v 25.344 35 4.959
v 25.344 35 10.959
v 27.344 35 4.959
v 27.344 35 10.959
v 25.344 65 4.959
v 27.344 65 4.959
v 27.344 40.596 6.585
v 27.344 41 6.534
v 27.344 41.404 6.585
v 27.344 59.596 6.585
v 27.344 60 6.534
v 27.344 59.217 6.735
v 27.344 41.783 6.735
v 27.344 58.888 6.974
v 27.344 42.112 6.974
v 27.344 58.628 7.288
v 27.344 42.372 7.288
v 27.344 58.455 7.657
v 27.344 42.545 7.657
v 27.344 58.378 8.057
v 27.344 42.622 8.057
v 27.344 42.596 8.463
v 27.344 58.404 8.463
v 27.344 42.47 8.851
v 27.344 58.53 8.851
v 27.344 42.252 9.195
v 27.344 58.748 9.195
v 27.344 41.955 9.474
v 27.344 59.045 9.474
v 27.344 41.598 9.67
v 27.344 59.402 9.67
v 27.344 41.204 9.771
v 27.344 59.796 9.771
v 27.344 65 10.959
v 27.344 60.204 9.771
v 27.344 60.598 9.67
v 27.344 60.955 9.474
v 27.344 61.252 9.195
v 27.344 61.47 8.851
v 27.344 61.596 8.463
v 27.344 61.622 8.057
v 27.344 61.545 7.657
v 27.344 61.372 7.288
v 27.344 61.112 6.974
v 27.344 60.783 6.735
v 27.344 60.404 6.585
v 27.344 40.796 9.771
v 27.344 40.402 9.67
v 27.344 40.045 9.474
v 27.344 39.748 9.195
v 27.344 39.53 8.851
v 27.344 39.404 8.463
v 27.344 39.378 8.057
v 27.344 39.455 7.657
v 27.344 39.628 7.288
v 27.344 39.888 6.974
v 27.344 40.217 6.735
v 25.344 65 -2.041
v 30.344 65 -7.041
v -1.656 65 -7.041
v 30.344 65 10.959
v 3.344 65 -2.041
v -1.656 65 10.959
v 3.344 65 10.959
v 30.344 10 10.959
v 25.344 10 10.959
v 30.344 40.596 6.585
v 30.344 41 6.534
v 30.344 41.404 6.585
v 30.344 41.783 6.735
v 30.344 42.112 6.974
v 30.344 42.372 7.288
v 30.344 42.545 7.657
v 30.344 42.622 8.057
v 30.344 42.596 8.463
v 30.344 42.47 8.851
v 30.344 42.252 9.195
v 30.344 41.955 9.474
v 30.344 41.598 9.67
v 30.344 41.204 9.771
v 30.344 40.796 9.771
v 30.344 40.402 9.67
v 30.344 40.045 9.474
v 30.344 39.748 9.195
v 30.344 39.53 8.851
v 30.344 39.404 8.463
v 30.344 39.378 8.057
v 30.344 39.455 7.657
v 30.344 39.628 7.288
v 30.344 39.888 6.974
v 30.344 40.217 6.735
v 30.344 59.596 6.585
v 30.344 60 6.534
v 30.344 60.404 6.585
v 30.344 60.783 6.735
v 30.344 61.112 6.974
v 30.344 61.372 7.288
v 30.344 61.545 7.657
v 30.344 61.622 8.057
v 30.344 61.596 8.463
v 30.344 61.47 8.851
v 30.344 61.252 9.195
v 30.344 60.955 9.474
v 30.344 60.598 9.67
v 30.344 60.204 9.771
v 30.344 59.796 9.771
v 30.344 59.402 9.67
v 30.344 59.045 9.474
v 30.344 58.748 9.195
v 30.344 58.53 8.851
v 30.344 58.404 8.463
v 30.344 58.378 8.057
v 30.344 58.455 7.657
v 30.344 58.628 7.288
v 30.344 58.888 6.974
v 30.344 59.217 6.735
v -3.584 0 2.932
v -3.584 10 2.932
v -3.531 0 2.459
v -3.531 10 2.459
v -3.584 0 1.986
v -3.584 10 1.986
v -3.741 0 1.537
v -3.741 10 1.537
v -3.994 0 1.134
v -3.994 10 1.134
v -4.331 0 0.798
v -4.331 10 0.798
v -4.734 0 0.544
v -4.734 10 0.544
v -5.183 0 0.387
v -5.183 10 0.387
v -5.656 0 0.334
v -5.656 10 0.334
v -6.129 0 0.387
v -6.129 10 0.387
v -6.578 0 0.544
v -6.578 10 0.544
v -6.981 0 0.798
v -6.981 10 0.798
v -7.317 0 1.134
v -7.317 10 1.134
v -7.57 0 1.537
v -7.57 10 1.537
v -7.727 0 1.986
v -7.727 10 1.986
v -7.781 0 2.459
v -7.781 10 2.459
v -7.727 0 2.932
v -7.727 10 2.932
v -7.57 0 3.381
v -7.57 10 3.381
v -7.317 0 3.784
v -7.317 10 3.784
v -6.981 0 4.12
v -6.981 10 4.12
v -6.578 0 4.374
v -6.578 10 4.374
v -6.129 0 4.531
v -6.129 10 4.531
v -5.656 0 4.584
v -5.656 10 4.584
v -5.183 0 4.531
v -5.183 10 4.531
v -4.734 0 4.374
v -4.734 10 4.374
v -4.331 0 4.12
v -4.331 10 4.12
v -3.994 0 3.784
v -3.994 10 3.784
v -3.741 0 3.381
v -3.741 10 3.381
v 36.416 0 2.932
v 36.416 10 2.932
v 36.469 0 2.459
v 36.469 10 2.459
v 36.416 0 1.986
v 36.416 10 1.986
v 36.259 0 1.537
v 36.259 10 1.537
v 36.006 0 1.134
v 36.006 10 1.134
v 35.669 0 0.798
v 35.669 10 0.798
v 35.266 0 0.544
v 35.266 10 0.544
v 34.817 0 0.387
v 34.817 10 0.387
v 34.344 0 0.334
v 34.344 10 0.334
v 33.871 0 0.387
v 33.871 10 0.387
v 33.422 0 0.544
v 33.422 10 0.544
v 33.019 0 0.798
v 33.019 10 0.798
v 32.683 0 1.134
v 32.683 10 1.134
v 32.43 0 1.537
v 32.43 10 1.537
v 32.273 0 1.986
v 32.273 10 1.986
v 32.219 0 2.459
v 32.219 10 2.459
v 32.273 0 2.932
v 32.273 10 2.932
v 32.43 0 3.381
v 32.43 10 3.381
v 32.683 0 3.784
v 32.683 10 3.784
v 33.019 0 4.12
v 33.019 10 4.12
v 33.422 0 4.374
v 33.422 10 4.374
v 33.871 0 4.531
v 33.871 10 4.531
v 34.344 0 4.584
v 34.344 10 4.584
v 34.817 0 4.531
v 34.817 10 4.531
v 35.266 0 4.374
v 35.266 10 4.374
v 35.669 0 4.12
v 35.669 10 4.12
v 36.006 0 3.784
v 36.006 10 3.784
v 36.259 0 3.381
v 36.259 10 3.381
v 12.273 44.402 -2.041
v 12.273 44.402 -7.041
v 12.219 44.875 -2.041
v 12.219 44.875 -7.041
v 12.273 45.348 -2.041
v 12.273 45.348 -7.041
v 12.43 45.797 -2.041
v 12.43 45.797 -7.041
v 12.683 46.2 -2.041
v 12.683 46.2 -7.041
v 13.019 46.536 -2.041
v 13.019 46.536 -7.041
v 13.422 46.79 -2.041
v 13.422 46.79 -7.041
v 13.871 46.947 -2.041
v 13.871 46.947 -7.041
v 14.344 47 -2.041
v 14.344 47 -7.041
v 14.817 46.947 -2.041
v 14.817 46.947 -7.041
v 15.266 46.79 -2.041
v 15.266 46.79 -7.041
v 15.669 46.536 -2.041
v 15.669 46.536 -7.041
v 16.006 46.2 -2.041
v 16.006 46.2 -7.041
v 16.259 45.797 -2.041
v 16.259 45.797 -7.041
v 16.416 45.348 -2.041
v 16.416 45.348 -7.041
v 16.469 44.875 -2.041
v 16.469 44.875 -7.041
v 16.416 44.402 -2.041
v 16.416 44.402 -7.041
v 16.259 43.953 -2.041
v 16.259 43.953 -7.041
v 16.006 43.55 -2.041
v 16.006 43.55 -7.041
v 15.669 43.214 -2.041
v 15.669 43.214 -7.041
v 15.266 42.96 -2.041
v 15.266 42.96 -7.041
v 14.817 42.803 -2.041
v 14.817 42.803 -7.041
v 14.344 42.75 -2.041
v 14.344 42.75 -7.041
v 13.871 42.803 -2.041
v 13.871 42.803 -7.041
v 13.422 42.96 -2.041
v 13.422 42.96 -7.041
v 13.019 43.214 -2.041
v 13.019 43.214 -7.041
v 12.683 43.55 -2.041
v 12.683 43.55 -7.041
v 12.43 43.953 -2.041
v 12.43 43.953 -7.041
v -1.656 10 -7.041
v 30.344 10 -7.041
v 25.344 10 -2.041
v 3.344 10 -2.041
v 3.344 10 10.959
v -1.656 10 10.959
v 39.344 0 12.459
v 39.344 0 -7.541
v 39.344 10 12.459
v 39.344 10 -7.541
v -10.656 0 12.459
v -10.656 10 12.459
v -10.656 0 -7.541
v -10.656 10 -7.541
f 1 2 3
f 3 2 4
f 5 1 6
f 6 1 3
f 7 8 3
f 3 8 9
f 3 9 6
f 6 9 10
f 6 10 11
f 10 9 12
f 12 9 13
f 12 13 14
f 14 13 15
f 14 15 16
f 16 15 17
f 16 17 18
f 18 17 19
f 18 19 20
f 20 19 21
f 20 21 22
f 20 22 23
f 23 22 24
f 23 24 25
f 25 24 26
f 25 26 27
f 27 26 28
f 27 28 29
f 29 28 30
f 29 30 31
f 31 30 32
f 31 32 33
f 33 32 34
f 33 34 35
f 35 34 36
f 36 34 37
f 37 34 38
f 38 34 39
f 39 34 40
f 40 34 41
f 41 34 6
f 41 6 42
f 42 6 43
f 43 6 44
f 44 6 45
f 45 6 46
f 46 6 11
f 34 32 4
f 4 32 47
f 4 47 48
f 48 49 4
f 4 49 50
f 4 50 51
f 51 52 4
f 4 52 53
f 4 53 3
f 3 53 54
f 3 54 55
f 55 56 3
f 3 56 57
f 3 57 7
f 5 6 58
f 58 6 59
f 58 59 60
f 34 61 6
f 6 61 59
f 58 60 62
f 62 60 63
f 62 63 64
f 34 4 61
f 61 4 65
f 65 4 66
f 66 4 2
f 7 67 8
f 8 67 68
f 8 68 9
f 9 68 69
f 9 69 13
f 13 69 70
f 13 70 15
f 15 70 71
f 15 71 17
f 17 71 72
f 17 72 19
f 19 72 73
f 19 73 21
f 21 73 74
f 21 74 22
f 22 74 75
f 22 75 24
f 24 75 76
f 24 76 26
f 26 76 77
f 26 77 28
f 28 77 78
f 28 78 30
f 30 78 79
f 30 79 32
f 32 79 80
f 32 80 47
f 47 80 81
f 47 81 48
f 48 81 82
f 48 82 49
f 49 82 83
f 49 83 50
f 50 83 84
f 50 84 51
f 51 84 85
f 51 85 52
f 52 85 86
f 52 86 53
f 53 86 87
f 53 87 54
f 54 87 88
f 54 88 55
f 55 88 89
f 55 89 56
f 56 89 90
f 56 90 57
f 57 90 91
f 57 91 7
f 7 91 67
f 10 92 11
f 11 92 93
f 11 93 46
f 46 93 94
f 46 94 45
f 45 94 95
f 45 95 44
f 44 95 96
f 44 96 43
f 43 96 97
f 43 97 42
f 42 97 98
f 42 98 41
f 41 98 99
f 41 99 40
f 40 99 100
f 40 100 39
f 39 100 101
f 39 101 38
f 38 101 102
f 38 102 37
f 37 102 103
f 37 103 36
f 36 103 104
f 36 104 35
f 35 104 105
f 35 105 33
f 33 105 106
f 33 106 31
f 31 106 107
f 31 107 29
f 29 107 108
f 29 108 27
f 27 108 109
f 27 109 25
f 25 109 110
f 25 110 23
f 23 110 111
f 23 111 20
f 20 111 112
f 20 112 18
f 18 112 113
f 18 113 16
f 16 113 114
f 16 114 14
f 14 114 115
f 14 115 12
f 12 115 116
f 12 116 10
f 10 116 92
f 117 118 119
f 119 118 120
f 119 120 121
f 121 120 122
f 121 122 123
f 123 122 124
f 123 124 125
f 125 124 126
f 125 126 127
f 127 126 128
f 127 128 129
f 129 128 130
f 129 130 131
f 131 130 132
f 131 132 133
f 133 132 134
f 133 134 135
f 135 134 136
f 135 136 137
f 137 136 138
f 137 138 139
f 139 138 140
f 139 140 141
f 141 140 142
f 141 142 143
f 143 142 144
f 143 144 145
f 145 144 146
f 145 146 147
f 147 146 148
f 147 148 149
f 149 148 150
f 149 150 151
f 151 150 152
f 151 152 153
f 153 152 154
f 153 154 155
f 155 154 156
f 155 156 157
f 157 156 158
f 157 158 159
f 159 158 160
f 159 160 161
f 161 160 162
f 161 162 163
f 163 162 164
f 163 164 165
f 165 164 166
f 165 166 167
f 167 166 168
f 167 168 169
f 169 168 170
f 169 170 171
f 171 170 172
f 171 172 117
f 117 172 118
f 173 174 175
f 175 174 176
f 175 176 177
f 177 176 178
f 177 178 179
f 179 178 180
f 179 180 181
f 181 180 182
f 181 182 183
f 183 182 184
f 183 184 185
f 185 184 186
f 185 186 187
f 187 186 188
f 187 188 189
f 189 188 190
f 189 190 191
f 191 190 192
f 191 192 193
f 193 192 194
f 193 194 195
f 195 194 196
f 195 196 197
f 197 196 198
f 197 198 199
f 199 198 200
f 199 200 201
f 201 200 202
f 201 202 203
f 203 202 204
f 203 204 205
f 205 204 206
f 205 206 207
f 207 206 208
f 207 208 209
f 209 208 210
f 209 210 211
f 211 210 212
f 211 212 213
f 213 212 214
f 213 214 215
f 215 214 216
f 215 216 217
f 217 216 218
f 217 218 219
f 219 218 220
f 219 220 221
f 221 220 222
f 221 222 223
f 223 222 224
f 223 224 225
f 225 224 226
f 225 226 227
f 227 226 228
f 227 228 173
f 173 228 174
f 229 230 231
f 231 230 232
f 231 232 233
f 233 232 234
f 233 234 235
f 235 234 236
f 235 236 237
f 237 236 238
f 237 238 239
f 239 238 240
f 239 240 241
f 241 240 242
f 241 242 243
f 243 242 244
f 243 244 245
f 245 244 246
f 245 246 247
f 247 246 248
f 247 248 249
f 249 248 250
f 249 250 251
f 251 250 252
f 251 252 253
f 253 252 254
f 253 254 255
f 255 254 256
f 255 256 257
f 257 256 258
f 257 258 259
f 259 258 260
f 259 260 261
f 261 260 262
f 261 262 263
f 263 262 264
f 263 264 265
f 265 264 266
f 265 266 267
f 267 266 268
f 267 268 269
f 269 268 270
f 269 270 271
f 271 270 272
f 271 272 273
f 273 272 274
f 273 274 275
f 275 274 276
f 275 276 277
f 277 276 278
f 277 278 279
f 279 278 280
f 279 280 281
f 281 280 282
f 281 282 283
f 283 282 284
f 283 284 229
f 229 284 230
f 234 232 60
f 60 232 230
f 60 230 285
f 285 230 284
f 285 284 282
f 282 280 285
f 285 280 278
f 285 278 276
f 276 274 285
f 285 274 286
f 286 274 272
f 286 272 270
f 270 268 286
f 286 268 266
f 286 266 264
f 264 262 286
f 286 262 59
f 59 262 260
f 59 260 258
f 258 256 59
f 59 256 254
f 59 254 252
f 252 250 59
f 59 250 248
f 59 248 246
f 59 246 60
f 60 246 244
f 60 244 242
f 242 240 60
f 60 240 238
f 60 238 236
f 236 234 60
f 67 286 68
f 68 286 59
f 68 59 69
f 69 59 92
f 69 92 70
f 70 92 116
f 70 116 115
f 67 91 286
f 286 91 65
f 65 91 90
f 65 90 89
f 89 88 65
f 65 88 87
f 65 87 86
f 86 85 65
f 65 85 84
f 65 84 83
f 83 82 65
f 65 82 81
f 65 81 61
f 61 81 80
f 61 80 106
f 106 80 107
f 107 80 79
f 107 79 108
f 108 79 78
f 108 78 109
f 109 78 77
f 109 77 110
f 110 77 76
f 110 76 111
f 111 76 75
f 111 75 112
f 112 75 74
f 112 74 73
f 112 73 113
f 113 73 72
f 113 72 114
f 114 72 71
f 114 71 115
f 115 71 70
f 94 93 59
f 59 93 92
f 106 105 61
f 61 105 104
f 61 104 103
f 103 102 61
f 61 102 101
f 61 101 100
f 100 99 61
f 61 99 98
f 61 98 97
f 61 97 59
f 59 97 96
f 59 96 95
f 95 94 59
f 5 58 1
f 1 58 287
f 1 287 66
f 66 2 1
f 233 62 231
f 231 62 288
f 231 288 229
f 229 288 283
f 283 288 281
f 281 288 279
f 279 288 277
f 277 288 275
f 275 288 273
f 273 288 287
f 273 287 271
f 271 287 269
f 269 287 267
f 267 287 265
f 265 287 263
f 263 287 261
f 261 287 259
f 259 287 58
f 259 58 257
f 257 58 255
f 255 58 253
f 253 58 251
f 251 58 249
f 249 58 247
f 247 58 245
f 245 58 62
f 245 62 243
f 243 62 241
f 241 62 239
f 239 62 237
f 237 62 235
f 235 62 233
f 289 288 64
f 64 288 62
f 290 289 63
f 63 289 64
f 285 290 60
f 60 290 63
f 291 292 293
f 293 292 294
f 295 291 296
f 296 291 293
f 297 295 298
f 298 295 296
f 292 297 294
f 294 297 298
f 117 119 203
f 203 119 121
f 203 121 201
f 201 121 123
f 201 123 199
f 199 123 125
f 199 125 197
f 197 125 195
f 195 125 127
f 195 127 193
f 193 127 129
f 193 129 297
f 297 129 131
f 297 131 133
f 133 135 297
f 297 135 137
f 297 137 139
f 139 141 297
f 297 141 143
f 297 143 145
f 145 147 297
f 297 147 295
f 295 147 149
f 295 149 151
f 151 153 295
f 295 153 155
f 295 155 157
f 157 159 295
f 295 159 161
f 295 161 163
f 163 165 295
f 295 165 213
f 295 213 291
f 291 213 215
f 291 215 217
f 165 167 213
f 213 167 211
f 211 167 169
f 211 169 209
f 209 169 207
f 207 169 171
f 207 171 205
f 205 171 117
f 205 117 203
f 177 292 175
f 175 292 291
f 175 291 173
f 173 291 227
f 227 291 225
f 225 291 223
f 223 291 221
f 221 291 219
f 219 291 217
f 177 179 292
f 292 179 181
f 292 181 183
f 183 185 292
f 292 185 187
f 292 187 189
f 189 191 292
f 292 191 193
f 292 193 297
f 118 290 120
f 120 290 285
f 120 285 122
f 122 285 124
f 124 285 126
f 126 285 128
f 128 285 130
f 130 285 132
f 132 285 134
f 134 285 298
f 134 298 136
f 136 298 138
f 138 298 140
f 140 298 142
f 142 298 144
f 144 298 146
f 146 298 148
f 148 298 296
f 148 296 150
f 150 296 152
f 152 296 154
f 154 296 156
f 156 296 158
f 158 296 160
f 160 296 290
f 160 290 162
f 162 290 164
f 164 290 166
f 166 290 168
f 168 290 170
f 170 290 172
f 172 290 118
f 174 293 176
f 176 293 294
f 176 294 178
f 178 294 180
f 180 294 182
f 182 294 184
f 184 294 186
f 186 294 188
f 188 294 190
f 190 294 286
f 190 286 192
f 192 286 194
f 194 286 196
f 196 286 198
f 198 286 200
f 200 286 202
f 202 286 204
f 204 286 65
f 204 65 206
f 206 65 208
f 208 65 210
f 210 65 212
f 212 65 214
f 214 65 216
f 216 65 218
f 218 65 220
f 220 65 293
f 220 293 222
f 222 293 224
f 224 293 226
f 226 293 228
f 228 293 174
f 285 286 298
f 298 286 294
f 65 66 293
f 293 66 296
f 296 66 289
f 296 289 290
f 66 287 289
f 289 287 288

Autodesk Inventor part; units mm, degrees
ref_plane "YZ Plane" through (0, 0, 0) normal (1, 0, 0) x (0, 1, 0)
ref_plane "XZ Plane" through (0, 0, 0) normal (0, 1, 0) x (-1, 0, 0)
ref_plane "XY Plane" through (0, 0, 0) normal (0, 0, 1) x (1, 0, 0)
sketch "Sketch2" plane through (0, 0, 0) normal (0, 1, 0) x (-1, 0, 0)
  line L0 (10.6557, -7.541) -> (-39.3443, -7.541)
  line L1 (-39.3443, -7.541) -> (-39.3443, 12.459)
  line L2 (-39.3443, 12.459) -> (10.6557, 12.459)
  line L3 (10.6557, 12.459) -> (10.6557, -7.541)
  point P0 (0, 0)
  dimension "d10" = 20
  dimension "d11" = 50
extrude "Extrusion3" add sketch "Sketch2" along normal blind 10
sketch "Sketch3" plane through (0, 10, 0) normal (0, 1, 0) x (1, 0, 0)
  line L0 (39.3443, 7.541) -> (-10.6557, 7.541) projected
  line L1 (-10.6557, 7.541) -> (-10.6557, -12.459) projected
  line L2 (-10.6557, -12.459) -> (39.3443, -12.459) projected
  line L3 (39.3443, -12.459) -> (39.3443, 7.541) projected
  line L4 (-1.6557, -10.959) -> (-1.6557, 7.041)
  line L5 (-1.6557, 7.041) -> (30.3443, 7.041)
  line L6 (30.3443, 7.041) -> (30.3443, -10.959)
  line L7 (30.3443, -10.959) -> (25.3443, -10.959)
  line L8 (25.3443, -10.959) -> (25.3443, 2.041)
  line L9 (25.3443, 2.041) -> (3.3443, 2.041)
  line L10 (3.3443, 2.041) -> (3.3443, -10.959)
  line L11 (3.3443, -10.959) -> (-1.6557, -10.959)
  line L12 (-1.6557, 7.041) -> (-10.6557, 7.041) construction
  line L13 (30.3443, 7.041) -> (39.3443, 7.041) construction
  line L14 (-1.6557, 7.041) -> (-1.6557, 7.541) construction
  point P0 (0, 0)
  dimension "d14" = 22
  dimension "d15" = 5
  dimension "d16" = 5
  dimension "d17" = 0.5
  dimension "d18" = 13
extrude "Extrusion4" add sketch "Sketch3" along normal blind 55 contours L4 L5 L6 L7 L8 L9 L10 L11
sketch "Sketch4" plane through (30.3443, 10, -7.041) normal (0, 0, -1) x (-1, 0, 0)
  circle A0 centre (16, 34.875) radius 2.125
  line L0 (16, 34.875) -> (0, 34.875) construction
  line L1 (0, 0) -> (0, 55) projected
  line L2 (16, 34.875) -> (32, 34.875) construction
  line L3 (32, 0) -> (32, 55) projected
  line L4 (0, 55) -> (32, 55) projected
  line L5 (-9, 0) -> (41, 0) projected
  point P0 (30.3443, -10)
  point P1 (28, 0)
  dimension "d21" = 4.25
  dimension "d32" = 34.875
extrude "Extrusion5" cut sketch "Sketch4" against normal up to next contours A0
sketch "Sketch5" plane through (0, 10, 0) normal (0, 1, 0) x (1, 0, 0)
  circle A0 centre (-5.6557, -2.459) radius 2.125
  circle A1 centre (34.3443, -2.459) radius 2.125
  line L0 (-5.6557, -2.459) -> (-10.6557, -2.459) construction
  line L1 (34.3443, -2.459) -> (39.3443, -2.459) construction
  line L2 (39.3443, -12.459) -> (39.3443, 7.541) projected
  line L3 (39.3443, 7.541) -> (-10.6557, 7.541) projected
  line L4 (-10.6557, 7.541) -> (-10.6557, -12.459) projected
  point P0 (0, 0)
  dimension "d26" = 4.25
  dimension "d27" = 10
  dimension "d28" = 5
extrude "Extrusion6" cut sketch "Sketch5" against normal up to next
sketch "Sketch6" plane through (30.3443, 10, 10.959) normal (1, 0, 0) x (0, 0, -1)
  circle A0 centre (2.8, 31) radius 1.625
  circle A1 centre (2.8, 50) radius 1.625
  line L0 (18, 0) -> (0, 0) projected
  line L1 (0, 0) -> (0, 55) projected
  line L2 (2.8, 50) -> (2.8, 31) construction
  point P0 (10.959, -10)
  dimension "d33" = 3.25
  dimension "d34" = 3.25
  dimension "d35" = 19
  dimension "d36" = 31
  dimension "d37" = 2.8
extrude "Extrusion7" cut sketch "Sketch6" against normal up to surface (5 mm away)
sketch "Sketch7" plane through (25.3443, 10, -2.041) normal (-1, 0, 0) x (0, 0, 1)
  line L0 (0, 55) -> (13, 55) projected
  line L1 (7, 55) -> (7, 25)
  line L2 (7, 25) -> (13, 25)
  line L3 (13, 0) -> (13, 55) projected
  line L4 (13, 25) -> (13, 55)
  line L5 (7, 55) -> (13, 55)
  point P0 (2.041, -10)
  dimension "d40" = 6
  dimension "d41" = 30
extrude "Extrusion8" cut sketch "Sketch7" against normal blind 2
properties part number "XPulleySupportBase" material "ABS Plastic"
